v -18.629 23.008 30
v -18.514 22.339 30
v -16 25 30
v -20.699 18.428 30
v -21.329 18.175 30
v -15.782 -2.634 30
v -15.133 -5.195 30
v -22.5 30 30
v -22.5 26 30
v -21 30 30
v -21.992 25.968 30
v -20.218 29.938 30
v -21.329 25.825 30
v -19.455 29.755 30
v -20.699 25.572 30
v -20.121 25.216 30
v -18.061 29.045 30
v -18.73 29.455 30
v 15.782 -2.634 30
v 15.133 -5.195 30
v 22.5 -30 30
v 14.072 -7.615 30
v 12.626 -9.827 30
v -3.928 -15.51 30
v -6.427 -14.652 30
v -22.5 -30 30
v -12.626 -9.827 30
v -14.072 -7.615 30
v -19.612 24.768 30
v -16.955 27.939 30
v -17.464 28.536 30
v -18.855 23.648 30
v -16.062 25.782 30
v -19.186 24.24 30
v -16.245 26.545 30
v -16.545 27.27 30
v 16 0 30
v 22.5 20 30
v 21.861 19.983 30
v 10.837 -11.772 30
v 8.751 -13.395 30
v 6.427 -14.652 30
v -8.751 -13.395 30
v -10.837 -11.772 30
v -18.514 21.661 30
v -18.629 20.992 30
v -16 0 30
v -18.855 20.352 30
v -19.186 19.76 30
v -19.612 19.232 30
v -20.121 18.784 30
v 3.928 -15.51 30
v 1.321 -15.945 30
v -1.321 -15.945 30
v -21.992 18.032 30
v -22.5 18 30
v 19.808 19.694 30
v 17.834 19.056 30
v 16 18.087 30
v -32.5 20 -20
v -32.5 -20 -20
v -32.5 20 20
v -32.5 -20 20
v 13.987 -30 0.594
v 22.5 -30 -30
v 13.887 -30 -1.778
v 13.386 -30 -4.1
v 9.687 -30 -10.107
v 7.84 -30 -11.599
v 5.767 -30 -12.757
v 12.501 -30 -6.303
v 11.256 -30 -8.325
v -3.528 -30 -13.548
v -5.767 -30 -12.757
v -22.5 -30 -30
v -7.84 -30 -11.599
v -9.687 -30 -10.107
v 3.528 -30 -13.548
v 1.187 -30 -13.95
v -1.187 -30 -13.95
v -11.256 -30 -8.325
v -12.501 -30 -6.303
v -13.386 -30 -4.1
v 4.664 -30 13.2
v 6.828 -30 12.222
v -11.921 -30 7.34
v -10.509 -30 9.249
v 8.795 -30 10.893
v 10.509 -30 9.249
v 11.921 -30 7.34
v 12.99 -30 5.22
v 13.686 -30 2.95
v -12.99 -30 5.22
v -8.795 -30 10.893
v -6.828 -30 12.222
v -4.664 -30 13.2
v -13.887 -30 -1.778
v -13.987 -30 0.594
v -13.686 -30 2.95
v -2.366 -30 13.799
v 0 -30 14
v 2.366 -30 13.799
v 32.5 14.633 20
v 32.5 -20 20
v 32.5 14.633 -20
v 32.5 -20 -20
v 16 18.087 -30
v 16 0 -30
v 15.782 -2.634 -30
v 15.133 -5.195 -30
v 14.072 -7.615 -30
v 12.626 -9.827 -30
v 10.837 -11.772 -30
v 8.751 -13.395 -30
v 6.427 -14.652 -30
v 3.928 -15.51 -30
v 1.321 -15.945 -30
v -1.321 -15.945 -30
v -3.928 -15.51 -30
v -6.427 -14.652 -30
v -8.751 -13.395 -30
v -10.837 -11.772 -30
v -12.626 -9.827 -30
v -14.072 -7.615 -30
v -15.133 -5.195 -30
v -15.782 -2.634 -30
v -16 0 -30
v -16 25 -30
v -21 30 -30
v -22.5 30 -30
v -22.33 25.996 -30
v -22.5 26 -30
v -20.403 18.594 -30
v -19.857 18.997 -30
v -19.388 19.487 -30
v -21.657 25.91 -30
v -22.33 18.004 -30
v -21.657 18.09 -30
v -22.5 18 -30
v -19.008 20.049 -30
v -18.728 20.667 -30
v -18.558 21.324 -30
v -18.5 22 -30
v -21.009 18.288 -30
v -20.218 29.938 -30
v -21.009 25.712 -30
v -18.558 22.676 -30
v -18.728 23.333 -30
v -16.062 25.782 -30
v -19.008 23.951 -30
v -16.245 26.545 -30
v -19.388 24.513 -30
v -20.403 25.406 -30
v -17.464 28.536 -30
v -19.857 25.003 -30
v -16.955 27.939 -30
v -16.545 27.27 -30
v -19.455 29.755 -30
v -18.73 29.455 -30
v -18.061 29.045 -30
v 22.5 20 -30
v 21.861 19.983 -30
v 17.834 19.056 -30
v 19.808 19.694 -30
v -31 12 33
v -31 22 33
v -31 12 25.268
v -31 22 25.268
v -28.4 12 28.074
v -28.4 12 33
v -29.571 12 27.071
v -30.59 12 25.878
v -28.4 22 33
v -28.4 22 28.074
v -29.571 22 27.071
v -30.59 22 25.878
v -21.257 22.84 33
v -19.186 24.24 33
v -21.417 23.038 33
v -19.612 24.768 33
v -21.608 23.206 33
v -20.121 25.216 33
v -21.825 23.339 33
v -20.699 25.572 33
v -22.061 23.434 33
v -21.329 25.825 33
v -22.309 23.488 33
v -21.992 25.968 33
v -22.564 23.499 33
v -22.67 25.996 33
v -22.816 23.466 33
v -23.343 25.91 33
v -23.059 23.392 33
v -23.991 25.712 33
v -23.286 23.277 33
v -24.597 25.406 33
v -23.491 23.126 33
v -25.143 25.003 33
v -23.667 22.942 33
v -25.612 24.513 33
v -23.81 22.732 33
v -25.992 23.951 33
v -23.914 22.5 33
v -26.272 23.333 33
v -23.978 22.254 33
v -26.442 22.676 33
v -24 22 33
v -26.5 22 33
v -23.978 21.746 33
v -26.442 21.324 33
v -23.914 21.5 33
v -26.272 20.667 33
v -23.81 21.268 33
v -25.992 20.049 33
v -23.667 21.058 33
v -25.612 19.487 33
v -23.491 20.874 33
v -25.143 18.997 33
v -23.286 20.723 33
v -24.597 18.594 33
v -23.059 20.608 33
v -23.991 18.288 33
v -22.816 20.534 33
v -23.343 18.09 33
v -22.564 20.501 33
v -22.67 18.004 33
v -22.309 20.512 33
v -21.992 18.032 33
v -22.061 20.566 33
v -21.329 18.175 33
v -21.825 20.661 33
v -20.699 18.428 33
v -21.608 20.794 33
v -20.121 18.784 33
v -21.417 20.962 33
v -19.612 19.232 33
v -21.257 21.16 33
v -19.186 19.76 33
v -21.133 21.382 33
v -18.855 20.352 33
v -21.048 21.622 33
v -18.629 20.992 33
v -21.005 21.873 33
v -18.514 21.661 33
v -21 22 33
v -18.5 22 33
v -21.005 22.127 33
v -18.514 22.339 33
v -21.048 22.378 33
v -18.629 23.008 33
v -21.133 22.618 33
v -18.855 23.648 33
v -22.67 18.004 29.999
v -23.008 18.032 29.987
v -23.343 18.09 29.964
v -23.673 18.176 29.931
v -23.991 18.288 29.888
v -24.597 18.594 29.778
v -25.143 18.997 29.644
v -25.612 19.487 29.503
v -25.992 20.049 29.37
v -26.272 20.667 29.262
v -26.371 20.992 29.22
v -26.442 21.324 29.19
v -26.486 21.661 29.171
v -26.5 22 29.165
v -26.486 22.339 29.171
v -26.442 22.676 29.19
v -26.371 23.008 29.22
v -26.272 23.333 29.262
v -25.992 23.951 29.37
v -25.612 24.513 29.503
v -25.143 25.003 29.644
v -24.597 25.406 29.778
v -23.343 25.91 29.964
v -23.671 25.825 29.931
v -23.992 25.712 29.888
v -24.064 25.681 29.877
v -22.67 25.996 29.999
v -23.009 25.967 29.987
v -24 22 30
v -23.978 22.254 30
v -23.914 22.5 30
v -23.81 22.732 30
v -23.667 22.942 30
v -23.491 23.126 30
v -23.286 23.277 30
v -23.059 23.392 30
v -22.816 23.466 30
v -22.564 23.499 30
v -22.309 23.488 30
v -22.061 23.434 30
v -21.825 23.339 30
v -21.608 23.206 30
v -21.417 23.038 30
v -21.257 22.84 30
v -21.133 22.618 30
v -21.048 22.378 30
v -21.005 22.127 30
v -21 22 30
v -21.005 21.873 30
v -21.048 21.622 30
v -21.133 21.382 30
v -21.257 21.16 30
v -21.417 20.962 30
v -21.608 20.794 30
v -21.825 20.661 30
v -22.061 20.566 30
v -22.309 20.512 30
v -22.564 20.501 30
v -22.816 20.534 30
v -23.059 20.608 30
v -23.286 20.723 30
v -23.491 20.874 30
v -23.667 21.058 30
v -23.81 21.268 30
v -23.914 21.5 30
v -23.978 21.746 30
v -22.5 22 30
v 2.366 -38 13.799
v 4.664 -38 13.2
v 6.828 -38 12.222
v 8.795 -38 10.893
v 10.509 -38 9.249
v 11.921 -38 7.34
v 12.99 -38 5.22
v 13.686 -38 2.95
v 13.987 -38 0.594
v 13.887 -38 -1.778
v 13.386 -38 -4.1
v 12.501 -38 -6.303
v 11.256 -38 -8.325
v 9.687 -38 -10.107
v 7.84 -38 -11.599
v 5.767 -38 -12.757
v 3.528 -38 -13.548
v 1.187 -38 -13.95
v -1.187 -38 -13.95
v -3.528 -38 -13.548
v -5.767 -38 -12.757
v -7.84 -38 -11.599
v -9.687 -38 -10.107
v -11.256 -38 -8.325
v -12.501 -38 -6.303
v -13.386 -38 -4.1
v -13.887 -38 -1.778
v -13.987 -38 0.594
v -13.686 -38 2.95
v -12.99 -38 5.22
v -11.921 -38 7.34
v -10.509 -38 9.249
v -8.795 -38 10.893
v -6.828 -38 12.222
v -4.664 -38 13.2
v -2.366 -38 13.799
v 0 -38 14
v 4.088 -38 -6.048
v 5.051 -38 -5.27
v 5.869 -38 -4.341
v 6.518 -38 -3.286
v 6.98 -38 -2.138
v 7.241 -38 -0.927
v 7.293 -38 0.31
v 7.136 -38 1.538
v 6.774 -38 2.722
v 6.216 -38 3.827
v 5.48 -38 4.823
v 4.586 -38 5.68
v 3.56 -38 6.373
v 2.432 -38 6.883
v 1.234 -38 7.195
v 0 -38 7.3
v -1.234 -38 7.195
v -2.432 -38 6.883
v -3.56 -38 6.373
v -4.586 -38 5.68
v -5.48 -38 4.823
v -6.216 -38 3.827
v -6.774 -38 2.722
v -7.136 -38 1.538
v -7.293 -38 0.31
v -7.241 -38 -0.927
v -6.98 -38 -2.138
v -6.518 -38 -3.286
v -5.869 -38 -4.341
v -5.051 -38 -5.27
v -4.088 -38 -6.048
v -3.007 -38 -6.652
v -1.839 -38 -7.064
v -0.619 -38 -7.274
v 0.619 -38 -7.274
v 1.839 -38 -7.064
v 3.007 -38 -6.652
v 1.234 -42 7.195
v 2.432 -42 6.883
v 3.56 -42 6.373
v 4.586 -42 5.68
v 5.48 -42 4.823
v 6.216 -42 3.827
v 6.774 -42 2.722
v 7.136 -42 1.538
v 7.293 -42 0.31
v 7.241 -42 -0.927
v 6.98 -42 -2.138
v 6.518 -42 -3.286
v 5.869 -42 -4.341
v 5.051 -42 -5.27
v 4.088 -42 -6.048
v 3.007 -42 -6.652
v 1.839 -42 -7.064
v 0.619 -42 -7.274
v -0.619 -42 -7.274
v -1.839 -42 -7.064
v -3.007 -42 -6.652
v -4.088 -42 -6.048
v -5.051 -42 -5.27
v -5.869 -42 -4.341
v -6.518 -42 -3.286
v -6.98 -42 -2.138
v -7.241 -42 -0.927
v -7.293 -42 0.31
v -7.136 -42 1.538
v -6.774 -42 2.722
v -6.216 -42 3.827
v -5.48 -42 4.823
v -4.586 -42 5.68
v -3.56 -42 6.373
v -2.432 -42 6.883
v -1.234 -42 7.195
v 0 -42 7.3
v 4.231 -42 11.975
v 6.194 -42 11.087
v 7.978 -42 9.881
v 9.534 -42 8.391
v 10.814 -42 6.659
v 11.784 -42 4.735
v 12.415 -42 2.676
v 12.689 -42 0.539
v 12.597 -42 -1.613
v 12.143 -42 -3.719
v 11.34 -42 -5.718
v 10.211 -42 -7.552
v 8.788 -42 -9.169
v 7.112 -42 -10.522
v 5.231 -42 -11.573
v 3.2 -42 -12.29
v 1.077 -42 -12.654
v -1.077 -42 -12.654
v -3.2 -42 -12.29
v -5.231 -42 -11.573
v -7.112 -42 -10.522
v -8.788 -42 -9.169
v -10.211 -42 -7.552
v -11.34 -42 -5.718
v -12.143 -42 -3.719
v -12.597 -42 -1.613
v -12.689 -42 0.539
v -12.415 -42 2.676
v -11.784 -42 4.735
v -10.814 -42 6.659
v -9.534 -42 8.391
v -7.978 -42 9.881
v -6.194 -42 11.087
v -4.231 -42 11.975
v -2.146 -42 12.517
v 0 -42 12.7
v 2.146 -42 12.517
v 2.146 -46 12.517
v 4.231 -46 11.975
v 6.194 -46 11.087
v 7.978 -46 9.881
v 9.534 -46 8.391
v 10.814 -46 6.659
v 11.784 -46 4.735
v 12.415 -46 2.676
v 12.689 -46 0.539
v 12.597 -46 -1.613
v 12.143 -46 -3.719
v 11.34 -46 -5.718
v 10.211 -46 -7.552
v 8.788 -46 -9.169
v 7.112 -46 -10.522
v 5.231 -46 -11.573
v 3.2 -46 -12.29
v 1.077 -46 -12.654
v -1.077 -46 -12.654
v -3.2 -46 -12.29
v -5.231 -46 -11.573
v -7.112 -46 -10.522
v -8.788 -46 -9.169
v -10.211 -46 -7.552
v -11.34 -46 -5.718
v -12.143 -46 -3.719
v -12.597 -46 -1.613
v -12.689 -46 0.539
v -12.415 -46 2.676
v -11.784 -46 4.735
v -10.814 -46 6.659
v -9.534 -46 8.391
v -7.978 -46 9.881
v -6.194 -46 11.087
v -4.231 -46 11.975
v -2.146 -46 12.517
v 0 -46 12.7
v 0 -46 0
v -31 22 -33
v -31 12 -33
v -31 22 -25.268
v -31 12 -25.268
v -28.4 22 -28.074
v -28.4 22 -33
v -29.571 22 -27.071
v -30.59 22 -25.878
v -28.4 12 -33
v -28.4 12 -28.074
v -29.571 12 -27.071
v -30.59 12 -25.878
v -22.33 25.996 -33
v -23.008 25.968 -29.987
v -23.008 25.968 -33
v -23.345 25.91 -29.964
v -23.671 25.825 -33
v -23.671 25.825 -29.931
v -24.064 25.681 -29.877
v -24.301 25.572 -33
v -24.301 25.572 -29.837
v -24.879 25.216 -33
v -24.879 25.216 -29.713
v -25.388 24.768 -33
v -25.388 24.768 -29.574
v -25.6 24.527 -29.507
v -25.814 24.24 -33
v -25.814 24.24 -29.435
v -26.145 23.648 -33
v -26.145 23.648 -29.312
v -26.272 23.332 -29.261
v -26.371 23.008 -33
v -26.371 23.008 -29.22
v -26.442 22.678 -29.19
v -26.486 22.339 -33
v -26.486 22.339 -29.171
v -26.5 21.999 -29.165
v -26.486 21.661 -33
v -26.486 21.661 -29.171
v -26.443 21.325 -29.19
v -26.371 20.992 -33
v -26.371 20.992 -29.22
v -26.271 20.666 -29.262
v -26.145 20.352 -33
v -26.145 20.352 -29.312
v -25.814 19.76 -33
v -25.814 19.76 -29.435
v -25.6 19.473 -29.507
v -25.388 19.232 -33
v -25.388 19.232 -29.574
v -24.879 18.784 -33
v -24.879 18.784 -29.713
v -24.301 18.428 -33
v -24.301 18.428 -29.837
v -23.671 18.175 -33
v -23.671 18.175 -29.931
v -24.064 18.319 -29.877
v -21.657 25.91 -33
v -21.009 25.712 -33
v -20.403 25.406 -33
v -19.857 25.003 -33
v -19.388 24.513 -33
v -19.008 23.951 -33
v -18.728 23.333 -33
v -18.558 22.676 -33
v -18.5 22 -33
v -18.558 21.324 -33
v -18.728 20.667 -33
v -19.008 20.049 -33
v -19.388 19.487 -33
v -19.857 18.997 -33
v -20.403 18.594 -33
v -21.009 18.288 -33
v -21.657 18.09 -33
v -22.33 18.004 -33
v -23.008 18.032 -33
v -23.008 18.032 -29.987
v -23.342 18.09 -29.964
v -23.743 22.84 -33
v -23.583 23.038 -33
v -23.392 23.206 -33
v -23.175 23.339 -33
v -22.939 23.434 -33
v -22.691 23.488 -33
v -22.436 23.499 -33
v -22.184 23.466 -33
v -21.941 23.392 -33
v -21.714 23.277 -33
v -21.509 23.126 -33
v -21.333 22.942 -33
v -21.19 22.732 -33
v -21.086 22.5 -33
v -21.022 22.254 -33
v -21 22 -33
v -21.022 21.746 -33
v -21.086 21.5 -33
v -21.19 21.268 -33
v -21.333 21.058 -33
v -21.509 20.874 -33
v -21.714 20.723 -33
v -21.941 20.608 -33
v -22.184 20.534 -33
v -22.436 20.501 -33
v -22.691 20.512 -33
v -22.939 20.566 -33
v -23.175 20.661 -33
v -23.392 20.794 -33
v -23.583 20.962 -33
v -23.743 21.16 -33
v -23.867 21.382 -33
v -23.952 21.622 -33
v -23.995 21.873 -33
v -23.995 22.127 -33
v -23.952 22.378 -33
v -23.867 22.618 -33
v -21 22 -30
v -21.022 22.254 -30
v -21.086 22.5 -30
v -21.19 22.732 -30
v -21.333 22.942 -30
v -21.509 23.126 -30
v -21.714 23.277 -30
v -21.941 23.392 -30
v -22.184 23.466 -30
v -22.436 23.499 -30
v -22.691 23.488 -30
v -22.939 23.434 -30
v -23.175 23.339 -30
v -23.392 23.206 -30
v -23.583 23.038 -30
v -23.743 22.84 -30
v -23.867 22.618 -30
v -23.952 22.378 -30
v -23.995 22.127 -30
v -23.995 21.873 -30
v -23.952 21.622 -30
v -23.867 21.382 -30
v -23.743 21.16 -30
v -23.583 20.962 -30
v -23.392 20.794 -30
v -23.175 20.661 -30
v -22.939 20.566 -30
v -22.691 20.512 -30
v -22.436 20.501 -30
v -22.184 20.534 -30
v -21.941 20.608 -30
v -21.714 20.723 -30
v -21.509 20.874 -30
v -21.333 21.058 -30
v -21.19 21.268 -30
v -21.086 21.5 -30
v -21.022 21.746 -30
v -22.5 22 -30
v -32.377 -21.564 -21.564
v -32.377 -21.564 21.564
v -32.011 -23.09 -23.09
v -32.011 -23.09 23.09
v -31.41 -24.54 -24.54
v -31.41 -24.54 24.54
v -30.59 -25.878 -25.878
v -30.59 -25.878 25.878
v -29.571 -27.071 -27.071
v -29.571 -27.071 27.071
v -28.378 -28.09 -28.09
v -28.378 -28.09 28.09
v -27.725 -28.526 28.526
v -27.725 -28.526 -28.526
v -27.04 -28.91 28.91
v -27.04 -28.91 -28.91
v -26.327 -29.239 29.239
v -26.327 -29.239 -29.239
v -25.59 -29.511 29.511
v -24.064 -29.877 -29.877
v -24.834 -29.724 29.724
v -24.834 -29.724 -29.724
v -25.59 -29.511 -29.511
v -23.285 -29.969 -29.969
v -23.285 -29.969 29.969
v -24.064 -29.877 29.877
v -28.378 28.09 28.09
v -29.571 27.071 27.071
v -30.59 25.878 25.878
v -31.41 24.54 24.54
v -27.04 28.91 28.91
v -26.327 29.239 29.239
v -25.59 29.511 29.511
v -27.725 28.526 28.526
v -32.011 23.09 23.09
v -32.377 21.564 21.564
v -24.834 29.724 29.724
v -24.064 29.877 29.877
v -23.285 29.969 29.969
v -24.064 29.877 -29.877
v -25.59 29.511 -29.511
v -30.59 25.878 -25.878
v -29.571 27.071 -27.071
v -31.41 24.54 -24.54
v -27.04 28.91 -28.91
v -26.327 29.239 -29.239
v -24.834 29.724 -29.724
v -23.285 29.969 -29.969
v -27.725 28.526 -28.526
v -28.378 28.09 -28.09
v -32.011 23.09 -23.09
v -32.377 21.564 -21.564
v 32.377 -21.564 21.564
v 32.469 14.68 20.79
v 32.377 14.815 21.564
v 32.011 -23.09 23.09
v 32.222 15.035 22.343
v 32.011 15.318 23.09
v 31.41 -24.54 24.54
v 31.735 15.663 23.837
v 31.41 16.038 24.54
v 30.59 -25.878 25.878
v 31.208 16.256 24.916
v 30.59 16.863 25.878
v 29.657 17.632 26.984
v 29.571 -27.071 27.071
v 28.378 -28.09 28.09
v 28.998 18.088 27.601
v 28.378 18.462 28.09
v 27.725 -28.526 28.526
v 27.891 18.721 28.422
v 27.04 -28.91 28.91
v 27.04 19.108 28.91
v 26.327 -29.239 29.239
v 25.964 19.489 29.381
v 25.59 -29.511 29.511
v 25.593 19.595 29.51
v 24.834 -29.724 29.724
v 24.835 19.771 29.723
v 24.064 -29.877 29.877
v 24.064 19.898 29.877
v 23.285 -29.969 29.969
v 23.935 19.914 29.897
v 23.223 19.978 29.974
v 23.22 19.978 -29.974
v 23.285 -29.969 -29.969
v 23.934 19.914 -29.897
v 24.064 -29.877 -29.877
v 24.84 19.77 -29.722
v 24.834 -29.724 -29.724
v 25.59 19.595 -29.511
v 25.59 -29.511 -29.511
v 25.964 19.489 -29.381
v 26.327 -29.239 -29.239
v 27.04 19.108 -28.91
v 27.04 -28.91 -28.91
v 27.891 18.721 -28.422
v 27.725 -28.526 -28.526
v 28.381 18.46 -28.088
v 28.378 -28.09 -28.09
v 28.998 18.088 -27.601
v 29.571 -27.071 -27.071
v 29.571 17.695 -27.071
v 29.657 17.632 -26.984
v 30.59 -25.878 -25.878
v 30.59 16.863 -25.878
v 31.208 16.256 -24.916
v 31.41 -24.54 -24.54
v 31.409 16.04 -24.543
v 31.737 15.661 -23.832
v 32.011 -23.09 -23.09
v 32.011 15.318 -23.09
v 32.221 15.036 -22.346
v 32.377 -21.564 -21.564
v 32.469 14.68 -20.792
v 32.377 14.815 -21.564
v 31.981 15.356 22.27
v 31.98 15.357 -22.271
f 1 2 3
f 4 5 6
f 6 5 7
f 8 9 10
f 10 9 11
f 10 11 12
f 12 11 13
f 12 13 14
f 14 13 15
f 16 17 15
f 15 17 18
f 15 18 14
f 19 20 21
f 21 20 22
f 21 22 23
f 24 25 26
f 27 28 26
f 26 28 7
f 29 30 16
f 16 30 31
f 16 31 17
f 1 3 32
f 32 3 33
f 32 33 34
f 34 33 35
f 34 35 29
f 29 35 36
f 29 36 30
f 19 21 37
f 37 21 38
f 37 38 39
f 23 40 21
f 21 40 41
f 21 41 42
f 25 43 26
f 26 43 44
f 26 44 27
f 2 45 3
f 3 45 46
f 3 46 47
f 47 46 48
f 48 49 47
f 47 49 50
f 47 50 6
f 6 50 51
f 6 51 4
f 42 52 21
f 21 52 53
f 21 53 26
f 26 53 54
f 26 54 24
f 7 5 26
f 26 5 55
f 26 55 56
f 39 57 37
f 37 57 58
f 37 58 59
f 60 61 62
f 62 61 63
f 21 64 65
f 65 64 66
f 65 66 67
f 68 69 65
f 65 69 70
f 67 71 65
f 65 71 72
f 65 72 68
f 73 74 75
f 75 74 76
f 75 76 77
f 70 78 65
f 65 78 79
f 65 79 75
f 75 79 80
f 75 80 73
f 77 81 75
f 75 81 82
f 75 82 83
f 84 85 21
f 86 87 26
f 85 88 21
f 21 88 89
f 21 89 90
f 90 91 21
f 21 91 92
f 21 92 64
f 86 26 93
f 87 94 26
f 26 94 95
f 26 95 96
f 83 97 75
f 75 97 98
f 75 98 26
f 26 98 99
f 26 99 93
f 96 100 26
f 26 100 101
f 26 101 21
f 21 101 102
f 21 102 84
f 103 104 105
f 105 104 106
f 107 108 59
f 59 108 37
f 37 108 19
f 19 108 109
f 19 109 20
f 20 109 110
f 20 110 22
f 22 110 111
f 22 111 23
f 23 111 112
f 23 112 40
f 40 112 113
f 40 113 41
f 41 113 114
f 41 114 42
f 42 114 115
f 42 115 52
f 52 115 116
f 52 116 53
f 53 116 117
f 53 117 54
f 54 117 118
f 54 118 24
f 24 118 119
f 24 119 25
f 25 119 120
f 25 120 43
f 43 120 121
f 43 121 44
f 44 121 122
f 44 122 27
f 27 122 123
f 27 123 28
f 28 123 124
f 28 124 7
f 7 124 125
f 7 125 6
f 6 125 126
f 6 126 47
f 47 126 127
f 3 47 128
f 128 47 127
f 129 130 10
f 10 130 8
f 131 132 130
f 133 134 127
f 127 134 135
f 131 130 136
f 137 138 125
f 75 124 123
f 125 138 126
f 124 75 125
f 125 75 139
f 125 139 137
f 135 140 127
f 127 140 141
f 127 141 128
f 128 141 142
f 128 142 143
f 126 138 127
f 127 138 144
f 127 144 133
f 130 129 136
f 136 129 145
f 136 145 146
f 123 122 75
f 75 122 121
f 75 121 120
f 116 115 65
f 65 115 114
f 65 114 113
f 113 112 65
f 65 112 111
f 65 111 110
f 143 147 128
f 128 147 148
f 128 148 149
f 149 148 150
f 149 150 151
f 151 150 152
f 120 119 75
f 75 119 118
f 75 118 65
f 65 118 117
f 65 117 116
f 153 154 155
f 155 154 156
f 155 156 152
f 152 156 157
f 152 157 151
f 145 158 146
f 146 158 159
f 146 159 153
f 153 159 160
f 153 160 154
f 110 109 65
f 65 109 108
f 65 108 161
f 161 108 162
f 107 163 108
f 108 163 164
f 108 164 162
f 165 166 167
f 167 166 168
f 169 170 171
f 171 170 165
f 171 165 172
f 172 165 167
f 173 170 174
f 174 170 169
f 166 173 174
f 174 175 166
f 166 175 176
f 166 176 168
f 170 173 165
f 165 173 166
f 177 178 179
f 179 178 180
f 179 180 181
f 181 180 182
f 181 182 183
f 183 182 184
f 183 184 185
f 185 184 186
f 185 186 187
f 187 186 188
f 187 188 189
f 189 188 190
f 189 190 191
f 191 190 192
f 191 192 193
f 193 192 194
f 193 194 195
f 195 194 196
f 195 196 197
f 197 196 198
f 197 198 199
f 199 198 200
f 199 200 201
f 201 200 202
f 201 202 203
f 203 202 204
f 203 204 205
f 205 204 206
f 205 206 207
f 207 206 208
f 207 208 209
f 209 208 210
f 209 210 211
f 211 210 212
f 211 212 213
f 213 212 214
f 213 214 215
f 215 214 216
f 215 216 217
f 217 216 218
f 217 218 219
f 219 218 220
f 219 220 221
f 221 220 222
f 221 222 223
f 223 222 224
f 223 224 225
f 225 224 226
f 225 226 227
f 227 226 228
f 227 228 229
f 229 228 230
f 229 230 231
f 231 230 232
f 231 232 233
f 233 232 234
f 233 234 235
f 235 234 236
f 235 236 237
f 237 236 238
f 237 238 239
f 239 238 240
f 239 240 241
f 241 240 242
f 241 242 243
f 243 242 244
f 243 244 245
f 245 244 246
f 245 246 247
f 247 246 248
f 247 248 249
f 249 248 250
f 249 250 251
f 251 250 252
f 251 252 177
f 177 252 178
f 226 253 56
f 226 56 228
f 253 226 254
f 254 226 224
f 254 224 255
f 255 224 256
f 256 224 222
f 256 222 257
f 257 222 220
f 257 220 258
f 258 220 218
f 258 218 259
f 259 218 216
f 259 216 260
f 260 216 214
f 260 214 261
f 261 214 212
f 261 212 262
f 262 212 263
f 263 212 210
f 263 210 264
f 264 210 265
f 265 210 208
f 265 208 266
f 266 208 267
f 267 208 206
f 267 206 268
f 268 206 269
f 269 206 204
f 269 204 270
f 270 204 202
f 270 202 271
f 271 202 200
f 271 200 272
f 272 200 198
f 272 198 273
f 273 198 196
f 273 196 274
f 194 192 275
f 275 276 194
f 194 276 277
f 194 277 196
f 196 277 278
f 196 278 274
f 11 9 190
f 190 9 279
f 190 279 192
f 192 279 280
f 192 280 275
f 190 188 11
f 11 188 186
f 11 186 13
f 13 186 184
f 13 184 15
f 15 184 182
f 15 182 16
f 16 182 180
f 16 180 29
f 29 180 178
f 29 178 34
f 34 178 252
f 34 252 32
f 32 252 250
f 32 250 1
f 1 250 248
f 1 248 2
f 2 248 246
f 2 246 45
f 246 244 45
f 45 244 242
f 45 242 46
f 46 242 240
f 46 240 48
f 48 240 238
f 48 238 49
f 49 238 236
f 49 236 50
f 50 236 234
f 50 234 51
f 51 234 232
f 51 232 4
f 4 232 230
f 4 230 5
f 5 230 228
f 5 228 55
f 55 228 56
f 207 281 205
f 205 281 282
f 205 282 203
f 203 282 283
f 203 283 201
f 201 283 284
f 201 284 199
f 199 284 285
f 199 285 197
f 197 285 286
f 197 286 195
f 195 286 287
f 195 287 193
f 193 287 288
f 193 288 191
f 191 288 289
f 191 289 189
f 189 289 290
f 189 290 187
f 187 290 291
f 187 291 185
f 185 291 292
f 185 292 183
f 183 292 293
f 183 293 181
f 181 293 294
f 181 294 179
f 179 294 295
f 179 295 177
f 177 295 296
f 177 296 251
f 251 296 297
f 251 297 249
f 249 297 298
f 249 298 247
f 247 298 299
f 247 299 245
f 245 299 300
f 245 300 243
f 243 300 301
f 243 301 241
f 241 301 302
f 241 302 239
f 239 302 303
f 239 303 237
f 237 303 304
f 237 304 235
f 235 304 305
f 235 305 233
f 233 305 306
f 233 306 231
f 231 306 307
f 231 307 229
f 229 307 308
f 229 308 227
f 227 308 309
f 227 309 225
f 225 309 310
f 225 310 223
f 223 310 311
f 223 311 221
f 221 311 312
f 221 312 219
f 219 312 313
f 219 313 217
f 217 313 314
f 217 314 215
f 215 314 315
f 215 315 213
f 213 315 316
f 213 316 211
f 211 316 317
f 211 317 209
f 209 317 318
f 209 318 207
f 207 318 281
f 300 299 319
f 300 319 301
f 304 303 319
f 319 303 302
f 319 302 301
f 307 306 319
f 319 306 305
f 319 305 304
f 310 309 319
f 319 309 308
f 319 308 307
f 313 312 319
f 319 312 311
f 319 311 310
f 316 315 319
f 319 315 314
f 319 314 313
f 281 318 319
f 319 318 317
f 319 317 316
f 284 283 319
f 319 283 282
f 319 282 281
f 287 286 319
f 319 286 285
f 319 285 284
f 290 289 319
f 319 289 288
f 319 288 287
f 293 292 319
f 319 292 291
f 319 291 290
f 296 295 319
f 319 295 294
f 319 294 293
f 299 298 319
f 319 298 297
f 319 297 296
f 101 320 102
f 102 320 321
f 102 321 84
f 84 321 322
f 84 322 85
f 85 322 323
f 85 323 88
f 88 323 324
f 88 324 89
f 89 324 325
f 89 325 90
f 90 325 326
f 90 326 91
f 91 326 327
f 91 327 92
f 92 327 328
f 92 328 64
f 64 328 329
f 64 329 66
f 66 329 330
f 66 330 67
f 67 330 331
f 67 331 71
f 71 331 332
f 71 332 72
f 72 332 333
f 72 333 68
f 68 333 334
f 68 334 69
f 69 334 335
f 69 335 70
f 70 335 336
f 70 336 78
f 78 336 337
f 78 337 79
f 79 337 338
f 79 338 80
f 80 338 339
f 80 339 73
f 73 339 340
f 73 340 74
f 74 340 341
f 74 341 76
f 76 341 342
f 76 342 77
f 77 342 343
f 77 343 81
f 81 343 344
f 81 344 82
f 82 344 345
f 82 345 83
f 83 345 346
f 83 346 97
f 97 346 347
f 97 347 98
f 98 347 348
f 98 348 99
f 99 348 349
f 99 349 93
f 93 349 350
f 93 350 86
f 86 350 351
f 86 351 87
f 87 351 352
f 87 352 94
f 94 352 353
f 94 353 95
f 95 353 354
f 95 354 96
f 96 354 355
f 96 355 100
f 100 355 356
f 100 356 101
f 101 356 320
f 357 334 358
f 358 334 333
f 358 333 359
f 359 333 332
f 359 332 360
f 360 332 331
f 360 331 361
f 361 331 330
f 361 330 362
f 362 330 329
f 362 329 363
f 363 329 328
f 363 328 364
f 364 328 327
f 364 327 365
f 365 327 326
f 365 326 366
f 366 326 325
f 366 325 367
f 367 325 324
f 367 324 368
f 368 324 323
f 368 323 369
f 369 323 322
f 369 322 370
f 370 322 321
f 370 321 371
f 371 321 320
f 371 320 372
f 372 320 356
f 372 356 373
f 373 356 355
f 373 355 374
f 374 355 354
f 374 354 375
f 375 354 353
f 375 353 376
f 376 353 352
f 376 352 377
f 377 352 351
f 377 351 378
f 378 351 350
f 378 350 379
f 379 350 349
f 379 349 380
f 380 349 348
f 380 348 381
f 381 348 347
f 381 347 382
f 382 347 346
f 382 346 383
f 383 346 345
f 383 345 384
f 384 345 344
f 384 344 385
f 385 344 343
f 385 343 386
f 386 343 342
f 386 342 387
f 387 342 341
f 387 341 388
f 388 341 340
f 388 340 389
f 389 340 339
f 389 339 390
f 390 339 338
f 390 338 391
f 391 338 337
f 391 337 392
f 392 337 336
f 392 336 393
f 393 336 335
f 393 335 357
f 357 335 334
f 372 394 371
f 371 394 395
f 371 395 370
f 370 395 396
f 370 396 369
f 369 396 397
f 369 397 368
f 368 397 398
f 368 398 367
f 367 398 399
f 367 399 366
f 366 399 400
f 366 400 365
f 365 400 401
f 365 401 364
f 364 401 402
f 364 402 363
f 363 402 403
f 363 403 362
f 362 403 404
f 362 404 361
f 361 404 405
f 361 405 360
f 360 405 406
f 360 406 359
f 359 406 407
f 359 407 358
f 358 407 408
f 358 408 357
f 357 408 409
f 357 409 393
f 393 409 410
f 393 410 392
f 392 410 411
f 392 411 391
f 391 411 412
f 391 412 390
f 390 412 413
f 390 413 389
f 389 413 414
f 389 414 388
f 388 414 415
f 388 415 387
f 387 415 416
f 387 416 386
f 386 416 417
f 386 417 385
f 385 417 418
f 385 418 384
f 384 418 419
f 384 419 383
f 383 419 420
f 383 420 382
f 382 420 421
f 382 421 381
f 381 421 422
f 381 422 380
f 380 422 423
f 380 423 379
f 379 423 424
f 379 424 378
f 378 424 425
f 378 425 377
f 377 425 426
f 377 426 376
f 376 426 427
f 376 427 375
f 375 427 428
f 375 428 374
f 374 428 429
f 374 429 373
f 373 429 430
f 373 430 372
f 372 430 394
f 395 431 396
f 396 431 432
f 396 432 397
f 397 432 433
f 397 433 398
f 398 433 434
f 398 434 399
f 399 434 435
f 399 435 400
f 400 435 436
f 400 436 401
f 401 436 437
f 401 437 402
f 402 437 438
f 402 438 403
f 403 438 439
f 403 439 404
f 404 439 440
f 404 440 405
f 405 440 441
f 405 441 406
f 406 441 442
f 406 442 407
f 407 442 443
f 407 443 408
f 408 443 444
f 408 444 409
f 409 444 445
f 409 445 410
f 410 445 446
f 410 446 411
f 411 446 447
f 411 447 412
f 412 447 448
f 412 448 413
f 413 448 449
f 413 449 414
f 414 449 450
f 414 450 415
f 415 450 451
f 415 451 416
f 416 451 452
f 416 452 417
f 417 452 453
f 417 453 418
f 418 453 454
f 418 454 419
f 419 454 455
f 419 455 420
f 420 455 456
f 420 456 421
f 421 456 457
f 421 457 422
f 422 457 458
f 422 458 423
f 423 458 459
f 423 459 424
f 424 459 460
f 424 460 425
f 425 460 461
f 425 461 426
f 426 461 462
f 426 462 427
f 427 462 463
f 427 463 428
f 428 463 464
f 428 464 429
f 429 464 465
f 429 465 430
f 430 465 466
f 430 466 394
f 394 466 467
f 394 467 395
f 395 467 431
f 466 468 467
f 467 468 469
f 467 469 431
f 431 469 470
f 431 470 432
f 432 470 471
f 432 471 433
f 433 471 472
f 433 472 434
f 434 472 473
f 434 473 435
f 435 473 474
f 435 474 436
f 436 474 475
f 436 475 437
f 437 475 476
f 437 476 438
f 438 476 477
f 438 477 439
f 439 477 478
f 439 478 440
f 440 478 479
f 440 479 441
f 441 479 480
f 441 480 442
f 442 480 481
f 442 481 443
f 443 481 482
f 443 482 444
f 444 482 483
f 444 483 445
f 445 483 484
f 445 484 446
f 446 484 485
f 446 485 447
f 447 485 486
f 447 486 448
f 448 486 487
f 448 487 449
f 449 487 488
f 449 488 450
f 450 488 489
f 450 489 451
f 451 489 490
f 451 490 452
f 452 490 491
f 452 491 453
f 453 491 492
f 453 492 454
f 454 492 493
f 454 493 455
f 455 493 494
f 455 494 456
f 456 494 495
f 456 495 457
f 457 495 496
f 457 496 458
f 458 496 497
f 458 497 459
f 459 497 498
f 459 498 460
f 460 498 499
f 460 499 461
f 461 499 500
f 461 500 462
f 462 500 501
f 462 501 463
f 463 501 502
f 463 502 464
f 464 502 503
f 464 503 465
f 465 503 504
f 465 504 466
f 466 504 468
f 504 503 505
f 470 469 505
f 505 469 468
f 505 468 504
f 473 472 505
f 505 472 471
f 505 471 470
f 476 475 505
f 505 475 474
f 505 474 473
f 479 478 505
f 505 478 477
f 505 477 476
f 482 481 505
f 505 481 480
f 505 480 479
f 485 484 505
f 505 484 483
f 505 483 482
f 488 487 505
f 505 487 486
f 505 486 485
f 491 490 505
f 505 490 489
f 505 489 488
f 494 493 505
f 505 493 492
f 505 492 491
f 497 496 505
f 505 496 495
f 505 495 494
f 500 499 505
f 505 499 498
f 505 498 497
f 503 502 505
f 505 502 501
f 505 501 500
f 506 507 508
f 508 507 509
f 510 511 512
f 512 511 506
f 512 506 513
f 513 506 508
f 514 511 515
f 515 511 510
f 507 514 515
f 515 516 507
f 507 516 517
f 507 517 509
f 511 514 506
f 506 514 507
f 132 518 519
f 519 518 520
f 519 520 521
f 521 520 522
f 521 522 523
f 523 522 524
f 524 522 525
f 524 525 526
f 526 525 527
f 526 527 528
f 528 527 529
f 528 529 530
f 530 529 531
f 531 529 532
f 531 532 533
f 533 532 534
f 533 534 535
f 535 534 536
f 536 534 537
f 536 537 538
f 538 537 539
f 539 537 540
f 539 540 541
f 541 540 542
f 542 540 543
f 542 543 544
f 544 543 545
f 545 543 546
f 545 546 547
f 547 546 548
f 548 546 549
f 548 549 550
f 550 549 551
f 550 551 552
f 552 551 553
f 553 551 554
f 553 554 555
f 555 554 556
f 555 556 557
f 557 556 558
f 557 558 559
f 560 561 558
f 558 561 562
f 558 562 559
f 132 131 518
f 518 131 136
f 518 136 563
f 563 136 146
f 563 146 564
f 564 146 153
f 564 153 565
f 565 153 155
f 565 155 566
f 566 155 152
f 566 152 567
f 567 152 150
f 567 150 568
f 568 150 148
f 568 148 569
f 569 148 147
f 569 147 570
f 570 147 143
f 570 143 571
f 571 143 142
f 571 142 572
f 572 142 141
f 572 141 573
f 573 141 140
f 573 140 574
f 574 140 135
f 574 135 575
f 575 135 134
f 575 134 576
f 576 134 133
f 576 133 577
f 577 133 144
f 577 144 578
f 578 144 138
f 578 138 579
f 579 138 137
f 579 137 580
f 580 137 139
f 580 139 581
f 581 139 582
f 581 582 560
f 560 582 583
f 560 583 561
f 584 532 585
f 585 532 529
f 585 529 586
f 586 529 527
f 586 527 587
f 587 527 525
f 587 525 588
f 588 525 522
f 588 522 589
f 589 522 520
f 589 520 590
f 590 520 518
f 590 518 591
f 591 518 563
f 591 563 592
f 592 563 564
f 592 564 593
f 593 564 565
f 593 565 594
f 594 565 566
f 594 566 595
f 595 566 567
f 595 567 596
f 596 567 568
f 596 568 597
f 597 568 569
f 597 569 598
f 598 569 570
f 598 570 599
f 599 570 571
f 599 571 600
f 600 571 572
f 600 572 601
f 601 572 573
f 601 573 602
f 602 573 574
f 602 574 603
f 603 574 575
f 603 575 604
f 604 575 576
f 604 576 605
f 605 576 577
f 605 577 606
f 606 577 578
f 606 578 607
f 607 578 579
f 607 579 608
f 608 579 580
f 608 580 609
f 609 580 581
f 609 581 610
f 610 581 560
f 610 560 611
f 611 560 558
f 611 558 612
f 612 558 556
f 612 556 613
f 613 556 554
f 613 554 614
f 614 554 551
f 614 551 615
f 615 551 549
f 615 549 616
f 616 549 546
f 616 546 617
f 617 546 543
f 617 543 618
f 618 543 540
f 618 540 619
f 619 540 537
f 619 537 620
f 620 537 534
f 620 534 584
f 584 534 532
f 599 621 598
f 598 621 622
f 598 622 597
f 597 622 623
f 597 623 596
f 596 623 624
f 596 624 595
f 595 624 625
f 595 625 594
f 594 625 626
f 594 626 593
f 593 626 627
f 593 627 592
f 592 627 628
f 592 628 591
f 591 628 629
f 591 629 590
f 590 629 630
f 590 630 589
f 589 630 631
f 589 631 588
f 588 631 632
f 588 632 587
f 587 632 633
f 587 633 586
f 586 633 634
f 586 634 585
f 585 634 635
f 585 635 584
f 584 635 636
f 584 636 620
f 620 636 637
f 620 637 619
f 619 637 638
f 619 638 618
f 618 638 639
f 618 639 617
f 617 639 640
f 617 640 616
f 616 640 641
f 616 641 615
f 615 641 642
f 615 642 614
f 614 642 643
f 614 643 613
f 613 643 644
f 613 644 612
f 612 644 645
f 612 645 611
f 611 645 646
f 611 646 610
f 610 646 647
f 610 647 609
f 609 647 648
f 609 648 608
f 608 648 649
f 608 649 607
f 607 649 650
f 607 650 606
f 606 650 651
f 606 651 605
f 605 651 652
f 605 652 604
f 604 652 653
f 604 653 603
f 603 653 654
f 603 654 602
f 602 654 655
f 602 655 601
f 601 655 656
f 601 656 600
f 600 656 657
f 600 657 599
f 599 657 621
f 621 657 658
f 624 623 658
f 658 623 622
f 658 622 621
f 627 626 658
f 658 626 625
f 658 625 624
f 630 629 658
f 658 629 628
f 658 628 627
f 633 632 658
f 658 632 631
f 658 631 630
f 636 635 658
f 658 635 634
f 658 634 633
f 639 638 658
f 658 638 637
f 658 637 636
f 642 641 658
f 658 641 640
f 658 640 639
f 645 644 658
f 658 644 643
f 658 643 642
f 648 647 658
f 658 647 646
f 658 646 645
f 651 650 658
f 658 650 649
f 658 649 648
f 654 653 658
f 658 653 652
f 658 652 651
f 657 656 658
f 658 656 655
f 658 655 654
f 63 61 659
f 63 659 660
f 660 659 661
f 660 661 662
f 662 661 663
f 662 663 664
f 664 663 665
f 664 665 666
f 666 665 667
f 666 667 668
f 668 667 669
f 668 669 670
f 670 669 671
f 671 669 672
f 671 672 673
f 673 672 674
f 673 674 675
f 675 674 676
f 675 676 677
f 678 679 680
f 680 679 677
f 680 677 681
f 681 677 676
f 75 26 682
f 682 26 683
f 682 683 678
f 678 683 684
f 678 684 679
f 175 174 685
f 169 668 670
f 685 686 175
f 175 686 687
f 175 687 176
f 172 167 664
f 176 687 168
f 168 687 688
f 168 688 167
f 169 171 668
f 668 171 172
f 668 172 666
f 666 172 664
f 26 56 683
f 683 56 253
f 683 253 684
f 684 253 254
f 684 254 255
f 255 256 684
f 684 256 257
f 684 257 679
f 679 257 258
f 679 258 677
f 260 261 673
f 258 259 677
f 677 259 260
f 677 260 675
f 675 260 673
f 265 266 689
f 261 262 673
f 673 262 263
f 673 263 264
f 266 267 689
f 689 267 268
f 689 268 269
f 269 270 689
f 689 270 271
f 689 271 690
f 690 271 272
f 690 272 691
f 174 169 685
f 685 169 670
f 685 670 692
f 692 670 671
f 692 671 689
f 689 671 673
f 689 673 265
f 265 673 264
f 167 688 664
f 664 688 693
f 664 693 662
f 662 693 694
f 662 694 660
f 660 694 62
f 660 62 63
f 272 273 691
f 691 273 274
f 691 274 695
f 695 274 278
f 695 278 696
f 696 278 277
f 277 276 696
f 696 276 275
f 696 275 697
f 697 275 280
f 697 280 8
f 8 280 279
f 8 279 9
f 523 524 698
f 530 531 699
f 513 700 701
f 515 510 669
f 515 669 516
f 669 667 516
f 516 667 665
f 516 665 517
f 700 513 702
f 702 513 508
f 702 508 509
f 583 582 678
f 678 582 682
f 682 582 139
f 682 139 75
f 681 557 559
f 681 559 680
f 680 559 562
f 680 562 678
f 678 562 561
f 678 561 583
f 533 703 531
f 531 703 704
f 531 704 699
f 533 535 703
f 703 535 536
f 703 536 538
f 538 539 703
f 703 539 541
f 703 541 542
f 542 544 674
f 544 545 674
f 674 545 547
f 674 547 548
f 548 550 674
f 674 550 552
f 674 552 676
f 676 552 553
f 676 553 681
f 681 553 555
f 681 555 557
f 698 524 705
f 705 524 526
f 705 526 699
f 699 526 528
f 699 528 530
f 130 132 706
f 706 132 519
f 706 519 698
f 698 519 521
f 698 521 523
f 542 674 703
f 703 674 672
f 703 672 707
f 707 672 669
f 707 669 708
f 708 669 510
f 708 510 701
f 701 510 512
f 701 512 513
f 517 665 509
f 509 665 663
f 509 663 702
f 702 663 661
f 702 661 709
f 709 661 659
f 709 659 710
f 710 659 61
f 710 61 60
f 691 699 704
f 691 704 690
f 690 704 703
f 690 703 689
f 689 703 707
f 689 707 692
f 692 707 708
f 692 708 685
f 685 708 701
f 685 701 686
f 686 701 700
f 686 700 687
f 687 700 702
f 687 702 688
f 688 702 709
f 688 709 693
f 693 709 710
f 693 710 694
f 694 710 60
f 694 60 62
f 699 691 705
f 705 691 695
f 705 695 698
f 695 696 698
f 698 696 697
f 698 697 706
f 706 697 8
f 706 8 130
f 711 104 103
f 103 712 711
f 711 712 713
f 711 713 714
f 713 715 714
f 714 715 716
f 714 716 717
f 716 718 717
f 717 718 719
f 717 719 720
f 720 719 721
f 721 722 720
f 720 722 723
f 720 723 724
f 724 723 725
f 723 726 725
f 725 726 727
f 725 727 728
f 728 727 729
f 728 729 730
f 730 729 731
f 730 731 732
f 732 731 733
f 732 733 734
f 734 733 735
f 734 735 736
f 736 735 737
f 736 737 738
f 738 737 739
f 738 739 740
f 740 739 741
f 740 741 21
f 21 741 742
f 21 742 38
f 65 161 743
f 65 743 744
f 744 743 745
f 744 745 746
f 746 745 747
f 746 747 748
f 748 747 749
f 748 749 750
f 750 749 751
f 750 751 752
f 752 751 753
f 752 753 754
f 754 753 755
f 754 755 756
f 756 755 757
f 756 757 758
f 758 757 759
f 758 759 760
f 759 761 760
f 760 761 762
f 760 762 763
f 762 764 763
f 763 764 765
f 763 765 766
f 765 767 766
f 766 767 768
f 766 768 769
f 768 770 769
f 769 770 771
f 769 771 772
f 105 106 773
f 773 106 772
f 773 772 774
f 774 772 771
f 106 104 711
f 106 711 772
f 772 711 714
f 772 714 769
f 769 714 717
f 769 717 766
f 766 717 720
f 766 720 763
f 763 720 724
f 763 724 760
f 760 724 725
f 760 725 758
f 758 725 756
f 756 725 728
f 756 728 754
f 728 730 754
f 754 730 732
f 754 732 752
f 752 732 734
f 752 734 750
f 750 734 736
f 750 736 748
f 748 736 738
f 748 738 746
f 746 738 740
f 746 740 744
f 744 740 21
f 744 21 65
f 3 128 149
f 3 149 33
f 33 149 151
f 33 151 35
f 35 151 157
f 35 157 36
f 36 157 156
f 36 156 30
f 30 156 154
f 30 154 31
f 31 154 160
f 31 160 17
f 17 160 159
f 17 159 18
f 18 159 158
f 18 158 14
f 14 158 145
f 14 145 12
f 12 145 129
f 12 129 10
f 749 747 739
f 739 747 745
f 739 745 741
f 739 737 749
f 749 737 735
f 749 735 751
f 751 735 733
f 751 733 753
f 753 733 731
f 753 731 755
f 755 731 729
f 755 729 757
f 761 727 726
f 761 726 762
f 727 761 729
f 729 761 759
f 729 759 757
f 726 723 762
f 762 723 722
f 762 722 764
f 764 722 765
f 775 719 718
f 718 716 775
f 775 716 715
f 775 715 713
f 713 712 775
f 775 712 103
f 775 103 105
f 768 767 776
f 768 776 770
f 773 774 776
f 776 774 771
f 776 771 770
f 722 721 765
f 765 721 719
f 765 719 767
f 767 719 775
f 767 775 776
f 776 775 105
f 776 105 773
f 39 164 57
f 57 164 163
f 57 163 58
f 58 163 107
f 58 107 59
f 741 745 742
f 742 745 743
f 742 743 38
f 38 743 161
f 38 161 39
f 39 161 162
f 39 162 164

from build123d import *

# Parameters (mm, degrees)
SALIENTE_EXTRUIR1_DEPTH = 30
CROQUIS2_R              = 4
CROQUIS2_R_2            = 1.5
CROQUIS2_W              = 2.6
CROQUIS2_H              = 10
SALIENTE_EXTRUIR2_DEPTH = 3
REDONDEO1_R             = 10
REDONDEO2_R             = 5
CORTAR_EXTRUIR1_DEPTH   = 50


with BuildPart() as part:
    # Croquis1 → Saliente-Extruir1 (new, symmetric)
    with BuildSketch(Plane.XY):
        with BuildLine():
            Line((-32.5, 30), (-16, 30))
            Line((-16, 30), (-16, 0))
            ThreePointArc((-16, 0), (0, -16), (16, 0))
            Line((16, 0), (16, 30))
            Line((16, 30), (32.5, 30))
            Line((32.5, 30), (32.5, -30))
            Line((32.5, -30), (-32.5, -30))
            Line((-32.5, -30), (-32.5, 30))
        make_face()
    extrude(amount=SALIENTE_EXTRUIR1_DEPTH, both=True)

    # Croquis2 → Saliente-Extruir2 (add)
    # profile 1 of 2: a face of its own
    with BuildSketch(Plane.XY.offset(30)):
        with Locations((-22.5, 22)):
            Circle(CROQUIS2_R)
        with Locations((-22.5, 22)):
            Circle(CROQUIS2_R_2, mode=Mode.SUBTRACT)
    # profile 2 of 2: a face of its own
    with BuildSketch(Plane.XY.offset(30)):
        with Locations((-29.7, 17)):
            Rectangle(CROQUIS2_W, CROQUIS2_H)
    saliente_extruir2 = extrude(amount=SALIENTE_EXTRUIR2_DEPTH)

    # Croquis4 → Revolución1 (revolve)
    with BuildSketch(Plane.XY, mode=Mode.PRIVATE) as revoluci_n1_sk:
        Polygon((0, -30), (14, -30), (14, -38), (7.3, -38), (7.3, -42), (12.7, -42), (12.7, -46), (0, -46), align=None)
    revolve(revoluci_n1_sk.sketch.rotate(Axis((0, -19.505365955, 0), (0, -1, 0)), 90), axis=Axis((0, -19.505365955, 0), (0, -1, 0)))

    # Simetría2: Saliente-Extruir2 across plane
    add(saliente_extruir2.mirror(Plane.XY))

    # Redondeo1
    # the kernel refuses this fillet: 10 mm, written as the material it takes off along each edge
    with BuildSketch(Plane(origin=(32.5, 55, -30), x_dir=(-1, 0, 0), z_dir=(0, -1, 0)), Plane(origin=(-32.5, 30, -55), x_dir=(1, 0, 0), z_dir=(0, 0, 1)), Plane(origin=(32.5, -30, -55), x_dir=(-1, 0, 0), z_dir=(0, 0, 1)), Plane(origin=(-32.5, -30, -55), x_dir=(0, 1, 0), z_dir=(0, 0, 1))) as redondeo1_piece_1:
        with BuildLine():
            CenterArc((REDONDEO1_R, -REDONDEO1_R), REDONDEO1_R, 90, 90)
            Line((0, -REDONDEO1_R), (0, 0))
            Line((0, 0), (REDONDEO1_R, 0))
        make_face()
    extrude(amount=110, mode=Mode.SUBTRACT)
    with BuildSketch(Plane(origin=(-32.5, -55, -30), x_dir=(0, 0, 1), z_dir=(0, 1, 0))) as redondeo1_piece_2_section:
        with BuildLine():
            CenterArc((REDONDEO1_R, REDONDEO1_R), REDONDEO1_R, 180, 90)
            Line((0, REDONDEO1_R), (0, 0))
            Line((0, 0), (REDONDEO1_R, 0))
        make_face()
    redondeo1_piece_2 = extrude(amount=110, mode=Mode.PRIVATE)
    redondeo1_piece_2 = split(redondeo1_piece_2, bisect_by=Plane(origin=(-31, -9, -26.666087893), z_dir=(-1, 0, 0)), keep=Keep.TOP, mode=Mode.PRIVATE)
    add(redondeo1_piece_2, mode=Mode.SUBTRACT)
    with BuildSketch(Plane(origin=(-32.5, -55, -30), x_dir=(0, 0, 1), z_dir=(0, 1, 0))) as redondeo1_piece_3_section:
        with BuildLine():
            CenterArc((REDONDEO1_R, REDONDEO1_R), REDONDEO1_R, 180, 90)
            Line((0, REDONDEO1_R), (0, 0))
            Line((0, 0), (REDONDEO1_R, 0))
        make_face()
    redondeo1_piece_3 = extrude(amount=110, mode=Mode.PRIVATE)
    redondeo1_piece_3 = split(redondeo1_piece_3, bisect_by=Plane(origin=(-29.890039843, 12, -28.324282077), z_dir=(0, -1, 0)), keep=Keep.TOP, mode=Mode.PRIVATE)
    add(redondeo1_piece_3, mode=Mode.SUBTRACT)
    with BuildSketch(Plane(origin=(-32.5, -55, -30), x_dir=(0, 0, 1), z_dir=(0, 1, 0))) as redondeo1_piece_4_section:
        with BuildLine():
            CenterArc((REDONDEO1_R, REDONDEO1_R), REDONDEO1_R, 180, 90)
            Line((0, REDONDEO1_R), (0, 0))
            Line((0, 0), (REDONDEO1_R, 0))
        make_face()
    redondeo1_piece_4 = extrude(amount=110, mode=Mode.PRIVATE)
    redondeo1_piece_4 = split(redondeo1_piece_4, bisect_by=Plane(origin=(-28.4, 16.722523597, -29.405754559), z_dir=(1, 0, 0)), keep=Keep.TOP, mode=Mode.PRIVATE)
    redondeo1_piece_4 = redondeo1_piece_4 - Plane(origin=(-22.5, 22, -29.405754559), x_dir=(1, 0, 0), z_dir=(0, 0, 1)) * Cylinder(4, 260, mode=Mode.PRIVATE)
    add(redondeo1_piece_4, mode=Mode.SUBTRACT)
    with BuildSketch(Plane(origin=(-32.5, -55, -30), x_dir=(0, 0, 1), z_dir=(0, 1, 0))) as redondeo1_piece_5_section:
        with BuildLine():
            CenterArc((REDONDEO1_R, REDONDEO1_R), REDONDEO1_R, 180, 90)
            Line((0, REDONDEO1_R), (0, 0))
            Line((0, 0), (REDONDEO1_R, 0))
        make_face()
    redondeo1_piece_5 = extrude(amount=110, mode=Mode.PRIVATE)
    redondeo1_piece_5 = split(redondeo1_piece_5, bisect_by=Plane(origin=(-29.890039843, 22, -28.324282077), z_dir=(0, 1, 0)), keep=Keep.TOP, mode=Mode.PRIVATE)
    redondeo1_piece_5 = split(redondeo1_piece_5, bisect_by=Plane(origin=(-28.4, 26, -28.324282077), z_dir=(-1, 0, 0)), keep=Keep.TOP, mode=Mode.PRIVATE)
    add(redondeo1_piece_5, mode=Mode.SUBTRACT)
    with BuildSketch(Plane(origin=(32.5, 55, 30), x_dir=(-1, 0, 0), z_dir=(0, -1, 0)), Plane(origin=(32.5, 30, 55), x_dir=(0, -1, 0), z_dir=(0, 0, -1))) as redondeo1_piece_6:
        with BuildLine():
            CenterArc((REDONDEO1_R, REDONDEO1_R), REDONDEO1_R, 180, 90)
            Line((0, REDONDEO1_R), (0, 0))
            Line((0, 0), (REDONDEO1_R, 0))
        make_face()
    extrude(amount=110, mode=Mode.SUBTRACT)
    with BuildSketch(Plane(origin=(-32.5, -55, 30), x_dir=(0, 0, -1), z_dir=(0, 1, 0))) as redondeo1_piece_7_section:
        with BuildLine():
            CenterArc((REDONDEO1_R, -REDONDEO1_R), REDONDEO1_R, 90, 90)
            Line((0, -REDONDEO1_R), (0, 0))
            Line((0, 0), (REDONDEO1_R, 0))
        make_face()
    redondeo1_piece_7 = extrude(amount=110, mode=Mode.PRIVATE)
    redondeo1_piece_7 = split(redondeo1_piece_7, bisect_by=Plane(origin=(-31, -9, 26.666087893), z_dir=(-1, 0, 0)), keep=Keep.TOP, mode=Mode.PRIVATE)
    add(redondeo1_piece_7, mode=Mode.SUBTRACT)
    with BuildSketch(Plane(origin=(-32.5, -55, 30), x_dir=(0, 0, -1), z_dir=(0, 1, 0))) as redondeo1_piece_8_section:
        with BuildLine():
            CenterArc((REDONDEO1_R, -REDONDEO1_R), REDONDEO1_R, 90, 90)
            Line((0, -REDONDEO1_R), (0, 0))
            Line((0, 0), (REDONDEO1_R, 0))
        make_face()
    redondeo1_piece_8 = extrude(amount=110, mode=Mode.PRIVATE)
    redondeo1_piece_8 = split(redondeo1_piece_8, bisect_by=Plane(origin=(-29.890039843, 12, 28.324282077), z_dir=(0, -1, 0)), keep=Keep.TOP, mode=Mode.PRIVATE)
    add(redondeo1_piece_8, mode=Mode.SUBTRACT)
    with BuildSketch(Plane(origin=(-32.5, -55, 30), x_dir=(0, 0, -1), z_dir=(0, 1, 0))) as redondeo1_piece_9_section:
        with BuildLine():
            CenterArc((REDONDEO1_R, -REDONDEO1_R), REDONDEO1_R, 90, 90)
            Line((0, -REDONDEO1_R), (0, 0))
            Line((0, 0), (REDONDEO1_R, 0))
        make_face()
    redondeo1_piece_9 = extrude(amount=110, mode=Mode.PRIVATE)
    redondeo1_piece_9 = split(redondeo1_piece_9, bisect_by=Plane(origin=(-28.4, 16.722523597, 29.405754559), z_dir=(1, 0, 0)), keep=Keep.TOP, mode=Mode.PRIVATE)
    redondeo1_piece_9 = redondeo1_piece_9 - Plane(origin=(-22.5, 22, 29.405754559), x_dir=(1, 0, 0), z_dir=(0, 0, -1)) * Cylinder(4, 260, mode=Mode.PRIVATE)
    add(redondeo1_piece_9, mode=Mode.SUBTRACT)
    with BuildSketch(Plane(origin=(-32.5, -55, 30), x_dir=(0, 0, -1), z_dir=(0, 1, 0))) as redondeo1_piece_10_section:
        with BuildLine():
            CenterArc((REDONDEO1_R, -REDONDEO1_R), REDONDEO1_R, 90, 90)
            Line((0, -REDONDEO1_R), (0, 0))
            Line((0, 0), (REDONDEO1_R, 0))
        make_face()
    redondeo1_piece_10 = extrude(amount=110, mode=Mode.PRIVATE)
    redondeo1_piece_10 = split(redondeo1_piece_10, bisect_by=Plane(origin=(-29.890039843, 22, 28.324282077), z_dir=(0, 1, 0)), keep=Keep.TOP, mode=Mode.PRIVATE)
    redondeo1_piece_10 = split(redondeo1_piece_10, bisect_by=Plane(origin=(-28.4, 26, 28.324282077), z_dir=(-1, 0, 0)), keep=Keep.TOP, mode=Mode.PRIVATE)
    add(redondeo1_piece_10, mode=Mode.SUBTRACT)

    # Redondeo2
    redondeo2_edges = [part.edges().sort_by_distance(p)[0] for p in [
        (-16, 30, 0),
        (16, 30, 0),
    ]]
    fillet(redondeo2_edges, radius=REDONDEO2_R)

    # Croquis5 → Cortar-Extruir1 (cut, symmetric)
    with BuildSketch(Plane.XY):
        with BuildLine():
            ThreePointArc((16, 18.087120501), (24.958618735, 19.745432896), (32.5, 14.633249581))
            Line((32.5, 14.633249581), (32.5, 20))
            ThreePointArc((32.5, 20), (29.571067812, 27.071067812), (22.5, 30))
            Line((22.5, 30), (21, 30))
            ThreePointArc((21, 30), (17.464466094, 28.535533906), (16, 25))
            Line((16, 25), (16, 18.087120501))
        make_face()
    extrude(amount=CORTAR_EXTRUIR1_DEPTH, both=True, mode=Mode.SUBTRACT)


solid = part.part
